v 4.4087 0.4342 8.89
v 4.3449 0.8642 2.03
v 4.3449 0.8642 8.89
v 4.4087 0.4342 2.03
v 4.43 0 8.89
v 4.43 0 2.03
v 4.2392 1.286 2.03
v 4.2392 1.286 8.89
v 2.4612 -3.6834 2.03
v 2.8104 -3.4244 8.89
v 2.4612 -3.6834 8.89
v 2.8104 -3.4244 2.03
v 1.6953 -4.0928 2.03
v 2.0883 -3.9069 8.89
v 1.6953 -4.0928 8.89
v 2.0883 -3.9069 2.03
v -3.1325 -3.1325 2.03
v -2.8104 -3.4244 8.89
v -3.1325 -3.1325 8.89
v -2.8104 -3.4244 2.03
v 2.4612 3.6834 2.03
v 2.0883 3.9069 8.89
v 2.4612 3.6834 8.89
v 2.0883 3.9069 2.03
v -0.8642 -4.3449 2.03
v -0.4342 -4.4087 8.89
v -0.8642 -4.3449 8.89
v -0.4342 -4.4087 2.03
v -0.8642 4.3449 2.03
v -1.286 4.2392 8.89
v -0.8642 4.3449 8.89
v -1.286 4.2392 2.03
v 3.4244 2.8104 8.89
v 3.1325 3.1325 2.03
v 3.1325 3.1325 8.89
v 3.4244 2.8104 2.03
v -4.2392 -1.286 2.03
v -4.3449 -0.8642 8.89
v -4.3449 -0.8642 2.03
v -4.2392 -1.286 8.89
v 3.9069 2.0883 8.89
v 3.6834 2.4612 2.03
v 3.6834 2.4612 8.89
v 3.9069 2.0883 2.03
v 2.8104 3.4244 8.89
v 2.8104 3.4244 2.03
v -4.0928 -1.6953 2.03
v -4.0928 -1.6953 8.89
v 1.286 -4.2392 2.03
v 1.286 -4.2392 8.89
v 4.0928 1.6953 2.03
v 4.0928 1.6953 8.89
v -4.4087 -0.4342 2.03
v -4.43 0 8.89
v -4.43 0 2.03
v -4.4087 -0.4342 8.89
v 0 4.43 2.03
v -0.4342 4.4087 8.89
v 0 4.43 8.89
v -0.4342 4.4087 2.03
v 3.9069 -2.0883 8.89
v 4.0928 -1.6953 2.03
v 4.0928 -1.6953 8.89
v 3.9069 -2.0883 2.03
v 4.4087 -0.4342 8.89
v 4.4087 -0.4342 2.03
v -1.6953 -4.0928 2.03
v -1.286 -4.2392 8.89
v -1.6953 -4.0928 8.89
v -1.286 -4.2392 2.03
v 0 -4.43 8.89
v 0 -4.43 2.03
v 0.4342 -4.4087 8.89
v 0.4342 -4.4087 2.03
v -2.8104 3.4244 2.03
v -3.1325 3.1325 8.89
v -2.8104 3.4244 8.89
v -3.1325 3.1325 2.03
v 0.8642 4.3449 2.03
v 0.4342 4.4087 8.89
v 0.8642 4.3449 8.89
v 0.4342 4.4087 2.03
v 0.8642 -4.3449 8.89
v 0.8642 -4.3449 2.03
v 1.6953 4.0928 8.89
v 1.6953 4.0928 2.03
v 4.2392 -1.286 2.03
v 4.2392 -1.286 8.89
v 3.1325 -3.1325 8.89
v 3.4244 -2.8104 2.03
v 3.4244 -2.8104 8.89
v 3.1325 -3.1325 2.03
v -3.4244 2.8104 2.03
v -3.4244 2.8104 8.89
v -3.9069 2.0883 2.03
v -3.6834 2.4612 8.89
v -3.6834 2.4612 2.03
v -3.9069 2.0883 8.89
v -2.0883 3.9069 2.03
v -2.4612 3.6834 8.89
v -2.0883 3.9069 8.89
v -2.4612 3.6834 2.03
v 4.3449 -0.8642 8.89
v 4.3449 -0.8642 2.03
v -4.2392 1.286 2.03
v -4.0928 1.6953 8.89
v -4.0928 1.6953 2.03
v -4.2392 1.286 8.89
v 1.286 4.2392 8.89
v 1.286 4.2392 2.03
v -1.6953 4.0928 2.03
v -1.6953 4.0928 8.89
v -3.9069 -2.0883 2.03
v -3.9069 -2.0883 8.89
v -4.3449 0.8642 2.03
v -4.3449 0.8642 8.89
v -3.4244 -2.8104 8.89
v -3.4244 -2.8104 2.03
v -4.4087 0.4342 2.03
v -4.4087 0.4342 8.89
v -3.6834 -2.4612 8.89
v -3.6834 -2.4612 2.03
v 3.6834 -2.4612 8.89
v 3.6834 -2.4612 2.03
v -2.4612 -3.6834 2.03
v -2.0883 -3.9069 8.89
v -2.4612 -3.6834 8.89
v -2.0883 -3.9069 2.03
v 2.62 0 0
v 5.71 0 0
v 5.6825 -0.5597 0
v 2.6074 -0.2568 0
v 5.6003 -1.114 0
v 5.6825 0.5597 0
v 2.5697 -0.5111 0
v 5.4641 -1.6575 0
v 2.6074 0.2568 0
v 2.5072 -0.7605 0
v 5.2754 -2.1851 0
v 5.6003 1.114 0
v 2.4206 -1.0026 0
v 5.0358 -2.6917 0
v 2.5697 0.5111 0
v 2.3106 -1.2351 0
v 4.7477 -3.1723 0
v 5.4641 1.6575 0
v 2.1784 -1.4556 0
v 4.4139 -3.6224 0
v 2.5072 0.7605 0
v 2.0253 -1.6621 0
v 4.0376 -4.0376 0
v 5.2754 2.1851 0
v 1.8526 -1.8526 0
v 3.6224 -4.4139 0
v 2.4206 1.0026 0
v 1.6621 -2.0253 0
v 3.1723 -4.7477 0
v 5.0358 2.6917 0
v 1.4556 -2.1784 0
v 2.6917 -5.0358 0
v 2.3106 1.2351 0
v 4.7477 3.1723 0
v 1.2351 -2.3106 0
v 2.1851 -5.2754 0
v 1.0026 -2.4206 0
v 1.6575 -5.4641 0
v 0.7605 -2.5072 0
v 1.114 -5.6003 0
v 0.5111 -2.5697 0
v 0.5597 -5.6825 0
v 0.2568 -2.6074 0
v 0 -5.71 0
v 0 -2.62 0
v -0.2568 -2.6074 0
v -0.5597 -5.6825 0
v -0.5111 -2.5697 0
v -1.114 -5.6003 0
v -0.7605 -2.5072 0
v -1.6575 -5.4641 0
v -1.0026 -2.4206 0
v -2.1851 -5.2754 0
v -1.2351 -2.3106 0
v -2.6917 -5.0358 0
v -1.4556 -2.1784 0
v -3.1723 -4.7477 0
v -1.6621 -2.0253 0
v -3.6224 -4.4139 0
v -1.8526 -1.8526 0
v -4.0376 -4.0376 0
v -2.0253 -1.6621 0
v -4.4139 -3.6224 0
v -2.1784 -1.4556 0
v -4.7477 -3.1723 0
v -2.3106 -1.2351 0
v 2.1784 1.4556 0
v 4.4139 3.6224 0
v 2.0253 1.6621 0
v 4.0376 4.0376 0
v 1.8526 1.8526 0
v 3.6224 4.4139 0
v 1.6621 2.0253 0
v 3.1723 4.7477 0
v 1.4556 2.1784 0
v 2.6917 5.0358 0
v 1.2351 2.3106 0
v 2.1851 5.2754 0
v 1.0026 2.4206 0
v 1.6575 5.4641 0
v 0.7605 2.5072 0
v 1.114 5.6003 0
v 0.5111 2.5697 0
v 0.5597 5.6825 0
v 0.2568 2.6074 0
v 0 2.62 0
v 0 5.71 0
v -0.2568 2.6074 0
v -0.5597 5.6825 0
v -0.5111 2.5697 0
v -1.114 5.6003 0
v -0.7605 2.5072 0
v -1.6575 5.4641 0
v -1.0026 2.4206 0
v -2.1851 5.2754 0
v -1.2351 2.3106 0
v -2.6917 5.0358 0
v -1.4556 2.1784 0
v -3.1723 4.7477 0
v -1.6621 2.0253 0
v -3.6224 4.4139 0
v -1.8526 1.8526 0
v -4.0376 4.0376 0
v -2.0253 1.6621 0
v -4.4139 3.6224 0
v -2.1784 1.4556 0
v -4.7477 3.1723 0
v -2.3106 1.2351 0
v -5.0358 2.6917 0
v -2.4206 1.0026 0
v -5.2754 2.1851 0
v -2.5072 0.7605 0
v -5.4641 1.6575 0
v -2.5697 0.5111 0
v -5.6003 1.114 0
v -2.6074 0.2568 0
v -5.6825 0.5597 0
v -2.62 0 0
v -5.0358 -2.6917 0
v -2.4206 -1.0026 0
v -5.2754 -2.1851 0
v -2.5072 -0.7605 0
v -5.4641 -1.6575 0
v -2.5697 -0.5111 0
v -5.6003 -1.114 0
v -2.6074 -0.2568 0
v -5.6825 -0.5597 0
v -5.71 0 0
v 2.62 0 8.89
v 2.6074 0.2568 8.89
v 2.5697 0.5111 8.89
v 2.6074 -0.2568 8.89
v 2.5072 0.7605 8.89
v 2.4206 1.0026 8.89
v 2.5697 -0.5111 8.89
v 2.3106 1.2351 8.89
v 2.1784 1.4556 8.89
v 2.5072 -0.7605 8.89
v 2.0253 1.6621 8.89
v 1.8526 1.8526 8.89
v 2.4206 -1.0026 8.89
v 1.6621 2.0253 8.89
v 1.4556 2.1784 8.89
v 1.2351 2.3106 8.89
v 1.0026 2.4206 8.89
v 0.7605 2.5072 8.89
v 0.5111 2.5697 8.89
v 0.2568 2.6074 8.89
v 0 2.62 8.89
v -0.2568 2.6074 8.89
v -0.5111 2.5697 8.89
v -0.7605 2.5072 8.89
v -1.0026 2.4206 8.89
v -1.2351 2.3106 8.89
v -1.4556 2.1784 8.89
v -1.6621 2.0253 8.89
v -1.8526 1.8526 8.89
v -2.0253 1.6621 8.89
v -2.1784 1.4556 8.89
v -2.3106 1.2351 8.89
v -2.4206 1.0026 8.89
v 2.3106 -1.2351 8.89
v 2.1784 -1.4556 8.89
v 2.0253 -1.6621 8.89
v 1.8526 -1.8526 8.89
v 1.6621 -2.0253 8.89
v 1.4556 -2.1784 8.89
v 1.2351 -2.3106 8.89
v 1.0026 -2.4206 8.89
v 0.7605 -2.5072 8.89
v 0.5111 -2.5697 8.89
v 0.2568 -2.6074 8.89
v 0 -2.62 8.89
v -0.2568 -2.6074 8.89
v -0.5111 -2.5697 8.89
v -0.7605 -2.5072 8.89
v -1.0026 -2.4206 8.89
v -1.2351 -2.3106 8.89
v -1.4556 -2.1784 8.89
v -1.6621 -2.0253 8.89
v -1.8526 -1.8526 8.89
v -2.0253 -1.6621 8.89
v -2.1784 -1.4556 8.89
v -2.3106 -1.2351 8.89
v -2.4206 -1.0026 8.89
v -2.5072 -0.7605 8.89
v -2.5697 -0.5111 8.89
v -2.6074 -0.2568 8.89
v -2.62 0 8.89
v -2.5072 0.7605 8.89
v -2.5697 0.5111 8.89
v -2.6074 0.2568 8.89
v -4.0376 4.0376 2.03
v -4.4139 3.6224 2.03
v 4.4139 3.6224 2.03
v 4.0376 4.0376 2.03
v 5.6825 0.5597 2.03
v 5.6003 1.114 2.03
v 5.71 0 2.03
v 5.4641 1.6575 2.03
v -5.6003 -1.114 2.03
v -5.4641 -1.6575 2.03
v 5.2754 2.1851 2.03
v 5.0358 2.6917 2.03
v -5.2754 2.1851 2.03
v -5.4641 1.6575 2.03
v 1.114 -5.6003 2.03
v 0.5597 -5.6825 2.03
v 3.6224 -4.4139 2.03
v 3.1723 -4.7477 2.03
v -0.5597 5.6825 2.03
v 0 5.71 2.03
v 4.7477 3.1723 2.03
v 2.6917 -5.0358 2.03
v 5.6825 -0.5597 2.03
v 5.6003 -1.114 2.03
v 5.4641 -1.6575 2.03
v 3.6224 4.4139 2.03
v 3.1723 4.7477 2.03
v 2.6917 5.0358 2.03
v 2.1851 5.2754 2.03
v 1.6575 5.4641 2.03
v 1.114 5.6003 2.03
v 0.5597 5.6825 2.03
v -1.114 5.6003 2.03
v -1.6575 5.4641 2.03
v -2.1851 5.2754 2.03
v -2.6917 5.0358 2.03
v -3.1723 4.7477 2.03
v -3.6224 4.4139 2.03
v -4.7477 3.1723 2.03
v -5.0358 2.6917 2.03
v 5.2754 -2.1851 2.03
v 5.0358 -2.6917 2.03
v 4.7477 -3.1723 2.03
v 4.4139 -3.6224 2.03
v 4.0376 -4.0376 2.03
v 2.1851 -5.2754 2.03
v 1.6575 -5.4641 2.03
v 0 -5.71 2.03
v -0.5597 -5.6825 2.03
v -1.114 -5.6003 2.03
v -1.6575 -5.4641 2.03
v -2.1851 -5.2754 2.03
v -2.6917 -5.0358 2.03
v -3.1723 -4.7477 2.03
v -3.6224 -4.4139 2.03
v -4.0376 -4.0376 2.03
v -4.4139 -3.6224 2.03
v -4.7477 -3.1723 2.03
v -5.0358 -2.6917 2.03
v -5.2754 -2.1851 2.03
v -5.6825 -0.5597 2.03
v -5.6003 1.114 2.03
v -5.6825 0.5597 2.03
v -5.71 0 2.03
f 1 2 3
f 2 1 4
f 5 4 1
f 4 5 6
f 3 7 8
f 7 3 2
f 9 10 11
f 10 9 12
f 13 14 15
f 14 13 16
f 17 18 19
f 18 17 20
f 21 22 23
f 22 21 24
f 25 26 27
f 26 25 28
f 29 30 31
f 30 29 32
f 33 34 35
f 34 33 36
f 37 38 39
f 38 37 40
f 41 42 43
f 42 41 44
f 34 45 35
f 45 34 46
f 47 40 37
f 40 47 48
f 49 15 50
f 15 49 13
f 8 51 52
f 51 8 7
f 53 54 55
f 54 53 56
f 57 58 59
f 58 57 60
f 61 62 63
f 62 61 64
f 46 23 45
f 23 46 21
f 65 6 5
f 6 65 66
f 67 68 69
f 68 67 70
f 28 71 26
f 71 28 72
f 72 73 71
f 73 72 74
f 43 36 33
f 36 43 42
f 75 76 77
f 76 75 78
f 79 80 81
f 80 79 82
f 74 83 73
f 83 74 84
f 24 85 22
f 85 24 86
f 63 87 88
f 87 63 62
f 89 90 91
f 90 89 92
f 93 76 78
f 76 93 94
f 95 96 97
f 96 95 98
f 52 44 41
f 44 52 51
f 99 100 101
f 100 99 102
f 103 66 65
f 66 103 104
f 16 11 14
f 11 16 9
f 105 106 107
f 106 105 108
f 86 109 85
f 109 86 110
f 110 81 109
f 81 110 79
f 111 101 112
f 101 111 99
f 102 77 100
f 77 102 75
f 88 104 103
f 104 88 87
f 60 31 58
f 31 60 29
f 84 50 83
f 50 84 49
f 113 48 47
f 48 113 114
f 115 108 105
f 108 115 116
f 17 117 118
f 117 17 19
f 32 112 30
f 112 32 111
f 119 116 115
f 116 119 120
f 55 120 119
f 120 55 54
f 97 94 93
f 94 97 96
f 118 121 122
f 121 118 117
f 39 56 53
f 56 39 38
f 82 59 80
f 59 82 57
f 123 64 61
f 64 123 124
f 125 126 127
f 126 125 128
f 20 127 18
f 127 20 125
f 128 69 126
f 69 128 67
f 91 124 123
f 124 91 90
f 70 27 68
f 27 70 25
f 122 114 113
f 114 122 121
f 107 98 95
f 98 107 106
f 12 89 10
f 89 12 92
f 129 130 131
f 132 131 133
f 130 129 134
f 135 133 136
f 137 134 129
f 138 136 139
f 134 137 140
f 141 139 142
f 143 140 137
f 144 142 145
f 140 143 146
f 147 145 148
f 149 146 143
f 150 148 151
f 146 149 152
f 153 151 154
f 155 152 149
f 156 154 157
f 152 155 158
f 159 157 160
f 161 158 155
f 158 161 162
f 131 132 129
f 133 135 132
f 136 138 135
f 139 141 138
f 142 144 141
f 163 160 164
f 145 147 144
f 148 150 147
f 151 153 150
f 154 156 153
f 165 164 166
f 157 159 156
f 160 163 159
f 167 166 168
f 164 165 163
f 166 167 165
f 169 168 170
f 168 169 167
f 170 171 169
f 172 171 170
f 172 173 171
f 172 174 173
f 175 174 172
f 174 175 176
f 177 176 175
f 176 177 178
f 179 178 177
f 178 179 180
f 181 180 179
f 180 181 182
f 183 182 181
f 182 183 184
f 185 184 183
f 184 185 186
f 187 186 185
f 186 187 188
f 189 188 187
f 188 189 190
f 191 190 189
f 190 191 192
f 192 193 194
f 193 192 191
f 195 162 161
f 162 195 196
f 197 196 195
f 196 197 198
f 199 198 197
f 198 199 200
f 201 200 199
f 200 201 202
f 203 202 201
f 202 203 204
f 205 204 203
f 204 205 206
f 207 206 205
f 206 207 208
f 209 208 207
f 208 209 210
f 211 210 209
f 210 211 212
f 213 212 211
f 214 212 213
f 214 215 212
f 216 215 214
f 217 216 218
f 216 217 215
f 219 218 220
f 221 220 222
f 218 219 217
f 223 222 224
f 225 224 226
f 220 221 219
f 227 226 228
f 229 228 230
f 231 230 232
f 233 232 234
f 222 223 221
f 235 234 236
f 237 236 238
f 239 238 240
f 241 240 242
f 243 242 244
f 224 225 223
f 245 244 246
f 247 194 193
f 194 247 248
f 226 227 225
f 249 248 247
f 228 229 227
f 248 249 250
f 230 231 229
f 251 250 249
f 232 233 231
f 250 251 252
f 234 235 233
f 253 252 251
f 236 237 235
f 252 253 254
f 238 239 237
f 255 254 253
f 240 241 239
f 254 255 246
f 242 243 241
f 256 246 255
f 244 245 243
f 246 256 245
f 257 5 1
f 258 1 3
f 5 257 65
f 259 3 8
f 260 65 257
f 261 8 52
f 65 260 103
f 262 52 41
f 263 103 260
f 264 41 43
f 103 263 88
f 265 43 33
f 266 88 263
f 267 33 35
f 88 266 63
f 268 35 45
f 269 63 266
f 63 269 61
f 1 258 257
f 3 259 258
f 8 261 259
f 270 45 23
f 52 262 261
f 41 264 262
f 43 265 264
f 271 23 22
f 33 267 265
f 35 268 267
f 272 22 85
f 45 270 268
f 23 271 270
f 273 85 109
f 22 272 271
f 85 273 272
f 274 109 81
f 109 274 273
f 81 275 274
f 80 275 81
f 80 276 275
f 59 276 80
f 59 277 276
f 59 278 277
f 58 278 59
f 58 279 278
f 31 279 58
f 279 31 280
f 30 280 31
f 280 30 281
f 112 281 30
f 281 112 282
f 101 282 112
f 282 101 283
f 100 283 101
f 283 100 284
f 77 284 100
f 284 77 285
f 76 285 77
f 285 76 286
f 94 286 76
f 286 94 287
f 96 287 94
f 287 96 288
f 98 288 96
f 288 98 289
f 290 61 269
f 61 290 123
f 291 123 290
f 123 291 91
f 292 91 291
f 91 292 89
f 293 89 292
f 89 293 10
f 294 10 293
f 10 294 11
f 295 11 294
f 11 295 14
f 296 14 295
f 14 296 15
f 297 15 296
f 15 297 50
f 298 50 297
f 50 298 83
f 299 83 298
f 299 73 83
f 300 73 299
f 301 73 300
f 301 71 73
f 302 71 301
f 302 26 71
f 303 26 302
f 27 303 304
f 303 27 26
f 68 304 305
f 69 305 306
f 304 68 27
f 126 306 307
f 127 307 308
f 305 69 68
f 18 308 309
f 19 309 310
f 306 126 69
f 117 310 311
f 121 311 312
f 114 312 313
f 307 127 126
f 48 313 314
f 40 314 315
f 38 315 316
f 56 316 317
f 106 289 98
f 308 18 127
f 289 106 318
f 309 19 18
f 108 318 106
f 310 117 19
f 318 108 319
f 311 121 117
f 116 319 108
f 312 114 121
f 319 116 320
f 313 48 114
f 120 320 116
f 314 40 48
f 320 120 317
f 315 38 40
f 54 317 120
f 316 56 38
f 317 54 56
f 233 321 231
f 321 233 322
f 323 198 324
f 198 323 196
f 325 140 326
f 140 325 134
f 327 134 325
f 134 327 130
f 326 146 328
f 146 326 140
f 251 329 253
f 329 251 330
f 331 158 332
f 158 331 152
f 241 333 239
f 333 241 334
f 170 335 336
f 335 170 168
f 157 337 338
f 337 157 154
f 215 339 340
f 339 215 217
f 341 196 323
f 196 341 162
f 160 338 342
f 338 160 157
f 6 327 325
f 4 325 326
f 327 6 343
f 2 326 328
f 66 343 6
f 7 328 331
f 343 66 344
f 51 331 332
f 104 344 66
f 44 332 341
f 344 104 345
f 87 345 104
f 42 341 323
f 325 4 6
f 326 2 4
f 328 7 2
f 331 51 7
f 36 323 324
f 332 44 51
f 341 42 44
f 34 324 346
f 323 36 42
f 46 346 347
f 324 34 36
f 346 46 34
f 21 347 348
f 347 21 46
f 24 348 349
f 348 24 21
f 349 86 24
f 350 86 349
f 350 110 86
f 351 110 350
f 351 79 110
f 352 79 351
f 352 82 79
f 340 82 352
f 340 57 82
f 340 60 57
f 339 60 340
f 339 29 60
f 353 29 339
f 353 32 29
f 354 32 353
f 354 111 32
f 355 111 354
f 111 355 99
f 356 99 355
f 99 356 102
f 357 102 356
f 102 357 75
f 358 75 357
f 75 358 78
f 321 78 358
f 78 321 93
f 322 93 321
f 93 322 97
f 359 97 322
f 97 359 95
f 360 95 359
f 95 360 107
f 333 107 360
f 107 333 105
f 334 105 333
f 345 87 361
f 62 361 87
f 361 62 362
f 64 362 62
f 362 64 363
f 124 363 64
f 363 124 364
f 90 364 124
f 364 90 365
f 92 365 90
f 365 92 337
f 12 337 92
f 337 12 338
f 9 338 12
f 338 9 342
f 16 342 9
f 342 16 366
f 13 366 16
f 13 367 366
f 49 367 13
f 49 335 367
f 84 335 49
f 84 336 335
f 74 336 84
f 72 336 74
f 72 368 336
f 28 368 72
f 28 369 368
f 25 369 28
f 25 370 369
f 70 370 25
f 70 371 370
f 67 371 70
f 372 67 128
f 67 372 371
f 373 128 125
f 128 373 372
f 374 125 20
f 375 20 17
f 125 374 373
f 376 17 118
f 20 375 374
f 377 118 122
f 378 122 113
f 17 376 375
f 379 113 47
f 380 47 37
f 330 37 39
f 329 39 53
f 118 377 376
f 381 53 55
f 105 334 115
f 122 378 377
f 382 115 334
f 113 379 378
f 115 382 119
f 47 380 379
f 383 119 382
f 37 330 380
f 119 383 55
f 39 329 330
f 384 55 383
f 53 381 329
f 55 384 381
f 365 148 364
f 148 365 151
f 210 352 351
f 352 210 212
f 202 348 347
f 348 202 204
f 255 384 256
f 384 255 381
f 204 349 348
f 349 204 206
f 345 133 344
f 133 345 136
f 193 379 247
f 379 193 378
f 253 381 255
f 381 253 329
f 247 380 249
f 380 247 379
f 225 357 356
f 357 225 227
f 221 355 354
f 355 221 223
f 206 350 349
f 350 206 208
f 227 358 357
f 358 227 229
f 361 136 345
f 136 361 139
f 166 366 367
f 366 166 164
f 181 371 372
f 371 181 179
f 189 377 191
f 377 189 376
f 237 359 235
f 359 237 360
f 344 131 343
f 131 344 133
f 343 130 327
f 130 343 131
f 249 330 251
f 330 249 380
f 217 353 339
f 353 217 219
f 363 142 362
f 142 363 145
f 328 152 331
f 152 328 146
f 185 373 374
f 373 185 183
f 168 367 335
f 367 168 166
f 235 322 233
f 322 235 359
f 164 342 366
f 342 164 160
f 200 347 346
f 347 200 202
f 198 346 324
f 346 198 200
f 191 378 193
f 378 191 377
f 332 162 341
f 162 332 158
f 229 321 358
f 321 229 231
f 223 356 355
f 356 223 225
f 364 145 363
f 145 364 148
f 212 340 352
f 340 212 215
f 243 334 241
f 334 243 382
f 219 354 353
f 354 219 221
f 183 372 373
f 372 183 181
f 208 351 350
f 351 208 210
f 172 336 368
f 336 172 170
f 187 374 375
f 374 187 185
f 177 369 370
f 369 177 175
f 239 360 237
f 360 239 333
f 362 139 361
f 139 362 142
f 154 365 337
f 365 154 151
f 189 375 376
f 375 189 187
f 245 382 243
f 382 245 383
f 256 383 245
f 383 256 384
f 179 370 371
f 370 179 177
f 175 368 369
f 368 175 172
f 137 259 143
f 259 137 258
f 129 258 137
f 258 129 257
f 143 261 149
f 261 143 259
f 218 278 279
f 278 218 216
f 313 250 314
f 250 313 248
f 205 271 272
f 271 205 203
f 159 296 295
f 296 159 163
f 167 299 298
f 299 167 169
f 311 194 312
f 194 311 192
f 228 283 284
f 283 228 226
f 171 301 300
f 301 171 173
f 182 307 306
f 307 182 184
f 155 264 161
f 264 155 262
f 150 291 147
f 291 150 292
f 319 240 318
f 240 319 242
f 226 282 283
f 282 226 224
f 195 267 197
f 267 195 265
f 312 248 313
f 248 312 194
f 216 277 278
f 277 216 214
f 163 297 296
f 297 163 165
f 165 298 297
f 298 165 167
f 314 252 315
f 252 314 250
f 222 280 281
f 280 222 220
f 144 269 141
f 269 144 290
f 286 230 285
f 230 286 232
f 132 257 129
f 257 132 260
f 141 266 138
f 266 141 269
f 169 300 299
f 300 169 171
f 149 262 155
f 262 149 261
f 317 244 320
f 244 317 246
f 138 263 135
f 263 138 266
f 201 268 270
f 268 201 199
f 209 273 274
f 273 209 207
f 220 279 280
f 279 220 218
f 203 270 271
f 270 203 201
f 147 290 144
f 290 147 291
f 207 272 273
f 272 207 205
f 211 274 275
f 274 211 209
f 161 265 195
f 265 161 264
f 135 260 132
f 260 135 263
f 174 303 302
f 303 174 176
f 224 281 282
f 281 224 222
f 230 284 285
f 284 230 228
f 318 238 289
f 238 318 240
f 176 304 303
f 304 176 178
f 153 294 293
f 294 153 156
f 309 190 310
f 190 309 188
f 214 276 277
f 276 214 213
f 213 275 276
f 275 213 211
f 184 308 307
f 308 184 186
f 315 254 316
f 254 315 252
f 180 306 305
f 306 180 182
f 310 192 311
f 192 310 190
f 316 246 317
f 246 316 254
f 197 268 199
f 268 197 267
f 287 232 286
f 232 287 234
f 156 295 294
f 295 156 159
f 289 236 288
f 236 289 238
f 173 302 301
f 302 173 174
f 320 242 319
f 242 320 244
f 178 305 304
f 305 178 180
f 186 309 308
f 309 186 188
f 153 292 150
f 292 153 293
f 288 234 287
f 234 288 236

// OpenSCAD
$fn = $preview ? 32 : 64;
difference() {
    union() {
        cylinder(h=8.89, r=4.43);
        cylinder(h=2.03, r=5.71);
    };
    translate([0,0,-.02]) cylinder(h=8.95, r=2.62);
};
